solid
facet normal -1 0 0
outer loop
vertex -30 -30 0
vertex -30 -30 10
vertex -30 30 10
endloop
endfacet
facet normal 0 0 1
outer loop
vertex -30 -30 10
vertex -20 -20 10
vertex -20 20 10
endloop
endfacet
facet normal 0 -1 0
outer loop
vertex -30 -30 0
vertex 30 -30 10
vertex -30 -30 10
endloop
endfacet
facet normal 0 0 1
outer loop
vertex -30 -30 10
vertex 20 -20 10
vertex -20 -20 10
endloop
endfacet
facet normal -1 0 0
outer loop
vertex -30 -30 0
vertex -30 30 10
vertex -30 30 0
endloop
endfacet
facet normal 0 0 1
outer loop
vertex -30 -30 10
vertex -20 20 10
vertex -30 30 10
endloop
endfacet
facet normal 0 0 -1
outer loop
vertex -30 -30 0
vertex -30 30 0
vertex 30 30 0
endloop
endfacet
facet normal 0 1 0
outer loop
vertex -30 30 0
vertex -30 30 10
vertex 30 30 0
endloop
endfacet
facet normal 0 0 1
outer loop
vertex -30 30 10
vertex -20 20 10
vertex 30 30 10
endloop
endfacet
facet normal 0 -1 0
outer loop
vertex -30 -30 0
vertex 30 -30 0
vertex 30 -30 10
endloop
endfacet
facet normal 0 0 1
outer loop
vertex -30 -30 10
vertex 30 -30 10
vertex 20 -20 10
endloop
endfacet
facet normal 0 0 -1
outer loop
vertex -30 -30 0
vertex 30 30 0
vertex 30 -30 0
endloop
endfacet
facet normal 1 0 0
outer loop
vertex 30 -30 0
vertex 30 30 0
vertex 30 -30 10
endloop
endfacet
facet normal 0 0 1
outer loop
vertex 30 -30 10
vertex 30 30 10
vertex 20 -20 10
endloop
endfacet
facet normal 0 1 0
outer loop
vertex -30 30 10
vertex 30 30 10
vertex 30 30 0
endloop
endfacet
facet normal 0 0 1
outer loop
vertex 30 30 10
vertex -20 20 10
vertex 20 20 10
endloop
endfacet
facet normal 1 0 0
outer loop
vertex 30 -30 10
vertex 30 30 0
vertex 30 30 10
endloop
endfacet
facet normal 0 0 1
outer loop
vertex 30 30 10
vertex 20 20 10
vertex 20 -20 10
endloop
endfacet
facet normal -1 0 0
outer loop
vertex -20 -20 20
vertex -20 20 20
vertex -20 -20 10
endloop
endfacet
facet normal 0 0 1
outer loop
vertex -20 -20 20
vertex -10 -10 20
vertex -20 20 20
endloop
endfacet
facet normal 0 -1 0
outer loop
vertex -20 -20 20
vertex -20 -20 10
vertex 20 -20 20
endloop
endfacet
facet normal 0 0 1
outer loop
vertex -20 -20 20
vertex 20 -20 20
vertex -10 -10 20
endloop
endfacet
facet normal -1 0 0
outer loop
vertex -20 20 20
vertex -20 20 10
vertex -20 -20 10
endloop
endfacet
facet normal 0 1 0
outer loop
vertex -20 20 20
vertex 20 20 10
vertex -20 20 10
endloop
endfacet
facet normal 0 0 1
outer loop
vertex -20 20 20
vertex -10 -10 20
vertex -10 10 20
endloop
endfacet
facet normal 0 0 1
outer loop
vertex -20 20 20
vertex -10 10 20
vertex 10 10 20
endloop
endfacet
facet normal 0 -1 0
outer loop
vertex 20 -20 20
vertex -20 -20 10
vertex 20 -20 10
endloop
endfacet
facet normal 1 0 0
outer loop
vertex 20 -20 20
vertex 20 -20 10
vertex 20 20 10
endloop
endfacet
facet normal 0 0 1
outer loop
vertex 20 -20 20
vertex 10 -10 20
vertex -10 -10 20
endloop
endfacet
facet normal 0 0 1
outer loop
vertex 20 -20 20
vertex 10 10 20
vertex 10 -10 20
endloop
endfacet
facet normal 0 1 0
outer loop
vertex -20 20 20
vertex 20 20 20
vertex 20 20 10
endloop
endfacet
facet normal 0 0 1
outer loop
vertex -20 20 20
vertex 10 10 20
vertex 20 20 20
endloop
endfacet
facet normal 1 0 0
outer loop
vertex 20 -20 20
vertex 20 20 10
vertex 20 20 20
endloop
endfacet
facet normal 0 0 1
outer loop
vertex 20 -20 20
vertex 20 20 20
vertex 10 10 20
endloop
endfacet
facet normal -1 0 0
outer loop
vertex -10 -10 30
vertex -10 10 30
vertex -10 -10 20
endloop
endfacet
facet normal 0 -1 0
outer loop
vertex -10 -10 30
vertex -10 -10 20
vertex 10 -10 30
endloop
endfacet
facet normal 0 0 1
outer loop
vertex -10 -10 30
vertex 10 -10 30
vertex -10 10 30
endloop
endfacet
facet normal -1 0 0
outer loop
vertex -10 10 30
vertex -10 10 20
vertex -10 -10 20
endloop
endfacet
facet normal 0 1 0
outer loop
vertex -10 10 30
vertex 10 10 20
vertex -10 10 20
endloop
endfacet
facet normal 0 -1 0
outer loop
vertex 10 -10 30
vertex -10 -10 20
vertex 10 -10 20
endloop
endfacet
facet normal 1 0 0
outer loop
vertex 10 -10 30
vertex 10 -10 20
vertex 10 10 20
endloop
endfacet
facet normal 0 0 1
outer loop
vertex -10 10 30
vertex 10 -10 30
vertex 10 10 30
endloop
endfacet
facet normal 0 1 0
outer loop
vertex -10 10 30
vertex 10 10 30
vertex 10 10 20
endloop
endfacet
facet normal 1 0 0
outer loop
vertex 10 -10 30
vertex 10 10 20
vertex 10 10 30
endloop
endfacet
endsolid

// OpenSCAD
union() {
    translate([0, 0, 5])
        cube([60, 60, 10], center = true);

    translate([0, 0, 15])
        cube([40, 40, 10], center = true);

    translate([0, 0, 25])
        cube([20, 20, 10], center = true);
}
